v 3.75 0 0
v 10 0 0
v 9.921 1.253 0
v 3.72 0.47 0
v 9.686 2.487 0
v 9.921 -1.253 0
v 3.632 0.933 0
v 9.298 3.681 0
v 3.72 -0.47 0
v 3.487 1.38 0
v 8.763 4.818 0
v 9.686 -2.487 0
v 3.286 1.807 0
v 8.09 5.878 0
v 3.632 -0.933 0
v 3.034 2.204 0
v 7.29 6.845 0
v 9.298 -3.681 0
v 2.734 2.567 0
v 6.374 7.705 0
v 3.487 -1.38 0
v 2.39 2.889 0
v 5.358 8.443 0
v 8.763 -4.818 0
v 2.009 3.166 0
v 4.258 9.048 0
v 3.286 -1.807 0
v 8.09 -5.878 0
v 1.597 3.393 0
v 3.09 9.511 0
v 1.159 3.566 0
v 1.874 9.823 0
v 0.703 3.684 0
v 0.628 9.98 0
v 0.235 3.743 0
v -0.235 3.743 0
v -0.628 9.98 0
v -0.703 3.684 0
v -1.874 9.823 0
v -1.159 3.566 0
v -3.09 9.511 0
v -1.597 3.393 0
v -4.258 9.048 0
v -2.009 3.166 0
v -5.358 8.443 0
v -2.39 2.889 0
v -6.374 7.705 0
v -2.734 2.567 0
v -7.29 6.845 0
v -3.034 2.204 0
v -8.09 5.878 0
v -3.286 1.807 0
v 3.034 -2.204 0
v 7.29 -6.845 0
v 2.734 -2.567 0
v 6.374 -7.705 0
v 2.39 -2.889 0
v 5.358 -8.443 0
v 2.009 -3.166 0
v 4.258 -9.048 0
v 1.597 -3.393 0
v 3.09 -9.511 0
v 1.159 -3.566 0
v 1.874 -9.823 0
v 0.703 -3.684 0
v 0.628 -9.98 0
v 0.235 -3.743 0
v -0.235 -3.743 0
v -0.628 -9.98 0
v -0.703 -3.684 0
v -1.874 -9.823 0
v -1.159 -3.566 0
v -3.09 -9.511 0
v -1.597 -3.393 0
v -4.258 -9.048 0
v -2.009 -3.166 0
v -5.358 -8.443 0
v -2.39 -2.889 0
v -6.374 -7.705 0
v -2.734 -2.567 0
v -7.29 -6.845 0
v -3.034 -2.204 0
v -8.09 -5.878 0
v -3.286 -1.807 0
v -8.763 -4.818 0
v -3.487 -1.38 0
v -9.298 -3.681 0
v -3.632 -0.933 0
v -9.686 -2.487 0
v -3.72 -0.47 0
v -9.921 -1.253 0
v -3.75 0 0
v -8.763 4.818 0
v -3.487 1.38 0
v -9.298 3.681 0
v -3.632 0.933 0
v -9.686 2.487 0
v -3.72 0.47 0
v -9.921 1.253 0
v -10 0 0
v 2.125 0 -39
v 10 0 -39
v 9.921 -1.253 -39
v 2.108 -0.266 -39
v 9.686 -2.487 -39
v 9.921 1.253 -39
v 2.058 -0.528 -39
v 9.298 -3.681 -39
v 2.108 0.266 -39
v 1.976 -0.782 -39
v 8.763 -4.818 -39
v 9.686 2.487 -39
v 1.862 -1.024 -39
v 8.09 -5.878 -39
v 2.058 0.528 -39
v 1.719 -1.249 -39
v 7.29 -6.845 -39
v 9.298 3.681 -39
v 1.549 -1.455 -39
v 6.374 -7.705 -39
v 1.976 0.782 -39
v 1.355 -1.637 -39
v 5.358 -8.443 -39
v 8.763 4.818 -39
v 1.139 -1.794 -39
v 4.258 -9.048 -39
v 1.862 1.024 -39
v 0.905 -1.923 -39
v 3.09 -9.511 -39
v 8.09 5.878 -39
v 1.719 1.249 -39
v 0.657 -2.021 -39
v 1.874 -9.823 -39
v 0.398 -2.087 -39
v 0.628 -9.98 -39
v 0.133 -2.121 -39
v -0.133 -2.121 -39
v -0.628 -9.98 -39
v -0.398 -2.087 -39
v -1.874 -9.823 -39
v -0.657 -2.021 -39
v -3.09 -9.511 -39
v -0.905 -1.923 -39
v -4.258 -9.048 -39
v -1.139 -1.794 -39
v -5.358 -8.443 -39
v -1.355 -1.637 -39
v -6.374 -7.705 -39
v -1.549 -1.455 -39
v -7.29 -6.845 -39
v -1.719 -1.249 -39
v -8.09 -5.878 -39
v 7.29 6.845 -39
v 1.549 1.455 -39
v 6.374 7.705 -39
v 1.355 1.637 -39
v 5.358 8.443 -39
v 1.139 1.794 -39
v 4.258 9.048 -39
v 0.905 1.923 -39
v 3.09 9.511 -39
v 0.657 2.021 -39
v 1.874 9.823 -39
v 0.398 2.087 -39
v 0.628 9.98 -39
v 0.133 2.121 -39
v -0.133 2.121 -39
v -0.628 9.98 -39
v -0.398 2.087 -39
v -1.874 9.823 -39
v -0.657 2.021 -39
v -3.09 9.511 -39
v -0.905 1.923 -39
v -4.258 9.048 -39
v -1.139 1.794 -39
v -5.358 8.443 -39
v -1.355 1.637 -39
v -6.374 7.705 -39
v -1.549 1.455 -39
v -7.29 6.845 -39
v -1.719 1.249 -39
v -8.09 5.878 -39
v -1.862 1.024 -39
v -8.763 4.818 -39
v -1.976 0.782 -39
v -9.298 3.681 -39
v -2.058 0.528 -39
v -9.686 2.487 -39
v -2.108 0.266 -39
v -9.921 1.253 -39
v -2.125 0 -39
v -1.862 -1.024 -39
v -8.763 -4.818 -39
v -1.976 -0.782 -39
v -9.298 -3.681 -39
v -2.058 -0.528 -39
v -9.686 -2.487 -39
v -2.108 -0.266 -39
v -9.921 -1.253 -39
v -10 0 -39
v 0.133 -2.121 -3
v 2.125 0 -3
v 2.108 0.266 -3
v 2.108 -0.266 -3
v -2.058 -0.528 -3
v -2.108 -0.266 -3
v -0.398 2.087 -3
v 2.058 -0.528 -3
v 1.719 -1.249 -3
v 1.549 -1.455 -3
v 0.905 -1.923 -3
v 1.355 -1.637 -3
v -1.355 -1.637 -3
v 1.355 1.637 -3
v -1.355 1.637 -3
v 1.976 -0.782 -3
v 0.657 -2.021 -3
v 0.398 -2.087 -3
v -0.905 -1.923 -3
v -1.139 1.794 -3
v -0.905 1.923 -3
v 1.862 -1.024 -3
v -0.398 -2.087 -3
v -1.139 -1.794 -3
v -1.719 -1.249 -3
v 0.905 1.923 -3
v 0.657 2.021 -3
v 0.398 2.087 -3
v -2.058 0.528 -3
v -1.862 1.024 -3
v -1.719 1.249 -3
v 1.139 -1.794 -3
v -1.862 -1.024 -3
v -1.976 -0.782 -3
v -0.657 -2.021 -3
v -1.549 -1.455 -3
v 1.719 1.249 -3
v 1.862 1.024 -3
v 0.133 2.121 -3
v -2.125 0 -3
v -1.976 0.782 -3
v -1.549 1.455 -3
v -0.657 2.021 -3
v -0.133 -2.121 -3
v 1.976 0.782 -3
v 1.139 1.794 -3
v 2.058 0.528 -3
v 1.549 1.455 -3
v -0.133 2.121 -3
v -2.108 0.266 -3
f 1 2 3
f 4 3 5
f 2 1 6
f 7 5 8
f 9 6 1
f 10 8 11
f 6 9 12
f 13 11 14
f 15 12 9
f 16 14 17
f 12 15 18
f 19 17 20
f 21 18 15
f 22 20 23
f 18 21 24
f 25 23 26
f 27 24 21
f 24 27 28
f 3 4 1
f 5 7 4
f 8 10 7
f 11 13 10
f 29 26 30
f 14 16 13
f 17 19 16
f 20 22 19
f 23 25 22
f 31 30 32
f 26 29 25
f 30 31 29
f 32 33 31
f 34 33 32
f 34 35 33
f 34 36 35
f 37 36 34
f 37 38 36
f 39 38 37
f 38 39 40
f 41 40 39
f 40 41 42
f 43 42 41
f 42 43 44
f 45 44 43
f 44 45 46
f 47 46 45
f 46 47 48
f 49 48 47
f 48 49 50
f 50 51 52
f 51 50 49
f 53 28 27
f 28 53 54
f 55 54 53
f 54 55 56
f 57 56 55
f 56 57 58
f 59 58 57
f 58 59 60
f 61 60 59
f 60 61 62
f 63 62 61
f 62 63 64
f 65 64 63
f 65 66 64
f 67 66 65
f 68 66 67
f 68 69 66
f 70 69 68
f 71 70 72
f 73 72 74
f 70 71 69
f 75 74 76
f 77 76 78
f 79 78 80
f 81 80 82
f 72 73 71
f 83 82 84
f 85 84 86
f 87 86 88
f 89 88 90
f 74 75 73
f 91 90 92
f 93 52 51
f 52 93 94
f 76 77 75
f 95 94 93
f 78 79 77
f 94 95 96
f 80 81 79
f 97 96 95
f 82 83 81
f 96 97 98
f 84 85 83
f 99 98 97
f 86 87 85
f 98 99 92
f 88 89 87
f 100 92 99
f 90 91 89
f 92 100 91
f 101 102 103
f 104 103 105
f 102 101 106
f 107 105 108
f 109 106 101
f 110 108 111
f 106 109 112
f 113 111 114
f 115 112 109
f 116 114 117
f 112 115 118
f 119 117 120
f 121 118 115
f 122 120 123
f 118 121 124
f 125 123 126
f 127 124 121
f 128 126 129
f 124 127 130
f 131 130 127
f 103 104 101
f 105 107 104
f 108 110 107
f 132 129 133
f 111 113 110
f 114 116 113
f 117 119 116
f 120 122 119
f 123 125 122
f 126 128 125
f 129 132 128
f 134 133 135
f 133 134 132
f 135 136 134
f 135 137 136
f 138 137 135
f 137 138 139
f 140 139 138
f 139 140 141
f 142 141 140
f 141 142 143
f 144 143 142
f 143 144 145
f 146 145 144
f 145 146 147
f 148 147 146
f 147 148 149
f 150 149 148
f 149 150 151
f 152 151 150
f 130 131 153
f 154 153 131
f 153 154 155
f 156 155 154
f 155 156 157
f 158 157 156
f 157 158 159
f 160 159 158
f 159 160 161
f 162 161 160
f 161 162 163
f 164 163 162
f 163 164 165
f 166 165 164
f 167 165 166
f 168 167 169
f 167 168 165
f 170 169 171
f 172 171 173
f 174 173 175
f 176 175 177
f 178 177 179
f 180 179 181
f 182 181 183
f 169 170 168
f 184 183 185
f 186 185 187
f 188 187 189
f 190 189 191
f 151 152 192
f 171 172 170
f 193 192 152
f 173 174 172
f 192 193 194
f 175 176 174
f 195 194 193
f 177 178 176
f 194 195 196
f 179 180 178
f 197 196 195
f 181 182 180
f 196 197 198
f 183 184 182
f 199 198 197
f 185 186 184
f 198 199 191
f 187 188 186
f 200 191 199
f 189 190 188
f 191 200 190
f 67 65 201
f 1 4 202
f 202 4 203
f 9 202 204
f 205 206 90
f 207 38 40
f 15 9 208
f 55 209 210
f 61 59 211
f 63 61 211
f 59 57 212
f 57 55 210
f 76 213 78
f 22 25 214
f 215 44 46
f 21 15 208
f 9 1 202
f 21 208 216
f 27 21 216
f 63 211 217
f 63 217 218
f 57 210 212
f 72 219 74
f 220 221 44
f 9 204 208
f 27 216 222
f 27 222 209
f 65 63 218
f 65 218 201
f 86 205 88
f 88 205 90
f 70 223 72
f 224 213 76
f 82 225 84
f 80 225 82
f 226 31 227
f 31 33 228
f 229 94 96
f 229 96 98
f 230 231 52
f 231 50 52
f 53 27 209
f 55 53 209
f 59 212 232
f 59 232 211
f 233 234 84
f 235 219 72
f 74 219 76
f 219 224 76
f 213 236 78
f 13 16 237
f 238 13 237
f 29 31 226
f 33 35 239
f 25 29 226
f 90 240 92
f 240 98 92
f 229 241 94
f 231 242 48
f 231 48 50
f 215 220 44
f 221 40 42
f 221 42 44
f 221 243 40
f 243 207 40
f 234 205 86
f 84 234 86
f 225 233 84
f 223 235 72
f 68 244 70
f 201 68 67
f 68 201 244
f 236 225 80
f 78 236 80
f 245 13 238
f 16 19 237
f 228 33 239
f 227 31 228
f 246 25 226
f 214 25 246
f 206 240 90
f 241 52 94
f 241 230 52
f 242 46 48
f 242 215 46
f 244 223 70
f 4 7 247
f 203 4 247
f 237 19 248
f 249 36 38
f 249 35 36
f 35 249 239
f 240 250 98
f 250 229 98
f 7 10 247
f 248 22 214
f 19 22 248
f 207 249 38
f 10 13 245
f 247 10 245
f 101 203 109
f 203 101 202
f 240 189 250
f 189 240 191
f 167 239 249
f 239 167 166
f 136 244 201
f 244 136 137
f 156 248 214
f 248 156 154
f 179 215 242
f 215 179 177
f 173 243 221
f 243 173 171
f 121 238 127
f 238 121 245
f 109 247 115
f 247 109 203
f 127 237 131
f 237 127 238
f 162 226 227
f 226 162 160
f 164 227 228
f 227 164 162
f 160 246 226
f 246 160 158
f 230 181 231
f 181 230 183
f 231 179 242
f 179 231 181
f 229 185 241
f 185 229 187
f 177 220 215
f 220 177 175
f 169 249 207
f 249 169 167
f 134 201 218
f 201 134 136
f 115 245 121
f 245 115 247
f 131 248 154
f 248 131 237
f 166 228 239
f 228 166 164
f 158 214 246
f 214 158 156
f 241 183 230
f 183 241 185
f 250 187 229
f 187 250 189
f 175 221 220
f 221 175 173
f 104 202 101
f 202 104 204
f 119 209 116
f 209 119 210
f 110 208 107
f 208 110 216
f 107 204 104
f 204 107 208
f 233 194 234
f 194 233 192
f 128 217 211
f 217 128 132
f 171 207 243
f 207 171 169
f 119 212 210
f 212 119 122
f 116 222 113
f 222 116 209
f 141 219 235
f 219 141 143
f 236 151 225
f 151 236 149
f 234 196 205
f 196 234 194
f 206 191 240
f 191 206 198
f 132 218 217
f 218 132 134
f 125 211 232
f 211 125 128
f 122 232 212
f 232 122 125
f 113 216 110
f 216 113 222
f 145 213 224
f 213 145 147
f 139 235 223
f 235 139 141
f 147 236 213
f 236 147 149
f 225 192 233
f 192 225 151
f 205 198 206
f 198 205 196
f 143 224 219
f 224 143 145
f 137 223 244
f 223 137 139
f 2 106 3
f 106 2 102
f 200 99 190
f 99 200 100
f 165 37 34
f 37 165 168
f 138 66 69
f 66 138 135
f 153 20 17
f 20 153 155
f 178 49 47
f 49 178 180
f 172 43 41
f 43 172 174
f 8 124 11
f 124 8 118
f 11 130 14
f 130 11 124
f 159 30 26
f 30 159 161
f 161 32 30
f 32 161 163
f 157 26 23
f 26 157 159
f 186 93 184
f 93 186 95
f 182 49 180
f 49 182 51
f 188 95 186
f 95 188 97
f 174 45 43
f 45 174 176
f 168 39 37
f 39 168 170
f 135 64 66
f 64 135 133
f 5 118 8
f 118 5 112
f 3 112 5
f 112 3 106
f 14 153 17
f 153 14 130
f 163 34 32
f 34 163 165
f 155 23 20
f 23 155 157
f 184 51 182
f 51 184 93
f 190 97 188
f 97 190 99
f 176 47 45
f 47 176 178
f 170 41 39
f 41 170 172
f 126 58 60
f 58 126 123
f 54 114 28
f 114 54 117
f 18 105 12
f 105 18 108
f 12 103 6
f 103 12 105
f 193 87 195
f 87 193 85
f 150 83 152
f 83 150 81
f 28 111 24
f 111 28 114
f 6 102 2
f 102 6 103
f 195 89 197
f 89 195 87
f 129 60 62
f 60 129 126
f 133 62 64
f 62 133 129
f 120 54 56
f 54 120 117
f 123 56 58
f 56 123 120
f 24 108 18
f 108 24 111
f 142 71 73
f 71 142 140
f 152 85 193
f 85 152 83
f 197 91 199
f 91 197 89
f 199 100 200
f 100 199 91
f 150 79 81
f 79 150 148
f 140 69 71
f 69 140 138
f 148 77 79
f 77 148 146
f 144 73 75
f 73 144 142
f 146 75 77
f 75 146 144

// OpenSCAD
$fn = 50;


difference() {
	union() {
		translate(v = [0, 0, -39.0000000000]) {
			cylinder(h = 39, r = 10.0000000000);
		}
		cylinder(h = 0, r = 20.0000000000);
	}
	union() {
		translate(v = [0, 0, 0]) {
			rotate(a = [0, 0, 0]) {
				difference() {
					union() {
						#translate(v = [0, 0, -39.0000000000]) {
							cylinder(h = 39, r = 2.0000000000);
						}
						#translate(v = [0, 0, -3]) {
							cylinder(h = 3, r = 10.0000000000, r1 = 2.1250000000, r2 = 3.7500000000);
						}
						#translate(v = [0, 0, -39.0000000000]) {
							cylinder(h = 39, r = 2.1250000000);
						}
						#translate(v = [0, 0, -39.0000000000]) {
							cylinder(h = 39, r = 2.0000000000);
						}
					}
					union();
				}
			}
		}
	}
}
